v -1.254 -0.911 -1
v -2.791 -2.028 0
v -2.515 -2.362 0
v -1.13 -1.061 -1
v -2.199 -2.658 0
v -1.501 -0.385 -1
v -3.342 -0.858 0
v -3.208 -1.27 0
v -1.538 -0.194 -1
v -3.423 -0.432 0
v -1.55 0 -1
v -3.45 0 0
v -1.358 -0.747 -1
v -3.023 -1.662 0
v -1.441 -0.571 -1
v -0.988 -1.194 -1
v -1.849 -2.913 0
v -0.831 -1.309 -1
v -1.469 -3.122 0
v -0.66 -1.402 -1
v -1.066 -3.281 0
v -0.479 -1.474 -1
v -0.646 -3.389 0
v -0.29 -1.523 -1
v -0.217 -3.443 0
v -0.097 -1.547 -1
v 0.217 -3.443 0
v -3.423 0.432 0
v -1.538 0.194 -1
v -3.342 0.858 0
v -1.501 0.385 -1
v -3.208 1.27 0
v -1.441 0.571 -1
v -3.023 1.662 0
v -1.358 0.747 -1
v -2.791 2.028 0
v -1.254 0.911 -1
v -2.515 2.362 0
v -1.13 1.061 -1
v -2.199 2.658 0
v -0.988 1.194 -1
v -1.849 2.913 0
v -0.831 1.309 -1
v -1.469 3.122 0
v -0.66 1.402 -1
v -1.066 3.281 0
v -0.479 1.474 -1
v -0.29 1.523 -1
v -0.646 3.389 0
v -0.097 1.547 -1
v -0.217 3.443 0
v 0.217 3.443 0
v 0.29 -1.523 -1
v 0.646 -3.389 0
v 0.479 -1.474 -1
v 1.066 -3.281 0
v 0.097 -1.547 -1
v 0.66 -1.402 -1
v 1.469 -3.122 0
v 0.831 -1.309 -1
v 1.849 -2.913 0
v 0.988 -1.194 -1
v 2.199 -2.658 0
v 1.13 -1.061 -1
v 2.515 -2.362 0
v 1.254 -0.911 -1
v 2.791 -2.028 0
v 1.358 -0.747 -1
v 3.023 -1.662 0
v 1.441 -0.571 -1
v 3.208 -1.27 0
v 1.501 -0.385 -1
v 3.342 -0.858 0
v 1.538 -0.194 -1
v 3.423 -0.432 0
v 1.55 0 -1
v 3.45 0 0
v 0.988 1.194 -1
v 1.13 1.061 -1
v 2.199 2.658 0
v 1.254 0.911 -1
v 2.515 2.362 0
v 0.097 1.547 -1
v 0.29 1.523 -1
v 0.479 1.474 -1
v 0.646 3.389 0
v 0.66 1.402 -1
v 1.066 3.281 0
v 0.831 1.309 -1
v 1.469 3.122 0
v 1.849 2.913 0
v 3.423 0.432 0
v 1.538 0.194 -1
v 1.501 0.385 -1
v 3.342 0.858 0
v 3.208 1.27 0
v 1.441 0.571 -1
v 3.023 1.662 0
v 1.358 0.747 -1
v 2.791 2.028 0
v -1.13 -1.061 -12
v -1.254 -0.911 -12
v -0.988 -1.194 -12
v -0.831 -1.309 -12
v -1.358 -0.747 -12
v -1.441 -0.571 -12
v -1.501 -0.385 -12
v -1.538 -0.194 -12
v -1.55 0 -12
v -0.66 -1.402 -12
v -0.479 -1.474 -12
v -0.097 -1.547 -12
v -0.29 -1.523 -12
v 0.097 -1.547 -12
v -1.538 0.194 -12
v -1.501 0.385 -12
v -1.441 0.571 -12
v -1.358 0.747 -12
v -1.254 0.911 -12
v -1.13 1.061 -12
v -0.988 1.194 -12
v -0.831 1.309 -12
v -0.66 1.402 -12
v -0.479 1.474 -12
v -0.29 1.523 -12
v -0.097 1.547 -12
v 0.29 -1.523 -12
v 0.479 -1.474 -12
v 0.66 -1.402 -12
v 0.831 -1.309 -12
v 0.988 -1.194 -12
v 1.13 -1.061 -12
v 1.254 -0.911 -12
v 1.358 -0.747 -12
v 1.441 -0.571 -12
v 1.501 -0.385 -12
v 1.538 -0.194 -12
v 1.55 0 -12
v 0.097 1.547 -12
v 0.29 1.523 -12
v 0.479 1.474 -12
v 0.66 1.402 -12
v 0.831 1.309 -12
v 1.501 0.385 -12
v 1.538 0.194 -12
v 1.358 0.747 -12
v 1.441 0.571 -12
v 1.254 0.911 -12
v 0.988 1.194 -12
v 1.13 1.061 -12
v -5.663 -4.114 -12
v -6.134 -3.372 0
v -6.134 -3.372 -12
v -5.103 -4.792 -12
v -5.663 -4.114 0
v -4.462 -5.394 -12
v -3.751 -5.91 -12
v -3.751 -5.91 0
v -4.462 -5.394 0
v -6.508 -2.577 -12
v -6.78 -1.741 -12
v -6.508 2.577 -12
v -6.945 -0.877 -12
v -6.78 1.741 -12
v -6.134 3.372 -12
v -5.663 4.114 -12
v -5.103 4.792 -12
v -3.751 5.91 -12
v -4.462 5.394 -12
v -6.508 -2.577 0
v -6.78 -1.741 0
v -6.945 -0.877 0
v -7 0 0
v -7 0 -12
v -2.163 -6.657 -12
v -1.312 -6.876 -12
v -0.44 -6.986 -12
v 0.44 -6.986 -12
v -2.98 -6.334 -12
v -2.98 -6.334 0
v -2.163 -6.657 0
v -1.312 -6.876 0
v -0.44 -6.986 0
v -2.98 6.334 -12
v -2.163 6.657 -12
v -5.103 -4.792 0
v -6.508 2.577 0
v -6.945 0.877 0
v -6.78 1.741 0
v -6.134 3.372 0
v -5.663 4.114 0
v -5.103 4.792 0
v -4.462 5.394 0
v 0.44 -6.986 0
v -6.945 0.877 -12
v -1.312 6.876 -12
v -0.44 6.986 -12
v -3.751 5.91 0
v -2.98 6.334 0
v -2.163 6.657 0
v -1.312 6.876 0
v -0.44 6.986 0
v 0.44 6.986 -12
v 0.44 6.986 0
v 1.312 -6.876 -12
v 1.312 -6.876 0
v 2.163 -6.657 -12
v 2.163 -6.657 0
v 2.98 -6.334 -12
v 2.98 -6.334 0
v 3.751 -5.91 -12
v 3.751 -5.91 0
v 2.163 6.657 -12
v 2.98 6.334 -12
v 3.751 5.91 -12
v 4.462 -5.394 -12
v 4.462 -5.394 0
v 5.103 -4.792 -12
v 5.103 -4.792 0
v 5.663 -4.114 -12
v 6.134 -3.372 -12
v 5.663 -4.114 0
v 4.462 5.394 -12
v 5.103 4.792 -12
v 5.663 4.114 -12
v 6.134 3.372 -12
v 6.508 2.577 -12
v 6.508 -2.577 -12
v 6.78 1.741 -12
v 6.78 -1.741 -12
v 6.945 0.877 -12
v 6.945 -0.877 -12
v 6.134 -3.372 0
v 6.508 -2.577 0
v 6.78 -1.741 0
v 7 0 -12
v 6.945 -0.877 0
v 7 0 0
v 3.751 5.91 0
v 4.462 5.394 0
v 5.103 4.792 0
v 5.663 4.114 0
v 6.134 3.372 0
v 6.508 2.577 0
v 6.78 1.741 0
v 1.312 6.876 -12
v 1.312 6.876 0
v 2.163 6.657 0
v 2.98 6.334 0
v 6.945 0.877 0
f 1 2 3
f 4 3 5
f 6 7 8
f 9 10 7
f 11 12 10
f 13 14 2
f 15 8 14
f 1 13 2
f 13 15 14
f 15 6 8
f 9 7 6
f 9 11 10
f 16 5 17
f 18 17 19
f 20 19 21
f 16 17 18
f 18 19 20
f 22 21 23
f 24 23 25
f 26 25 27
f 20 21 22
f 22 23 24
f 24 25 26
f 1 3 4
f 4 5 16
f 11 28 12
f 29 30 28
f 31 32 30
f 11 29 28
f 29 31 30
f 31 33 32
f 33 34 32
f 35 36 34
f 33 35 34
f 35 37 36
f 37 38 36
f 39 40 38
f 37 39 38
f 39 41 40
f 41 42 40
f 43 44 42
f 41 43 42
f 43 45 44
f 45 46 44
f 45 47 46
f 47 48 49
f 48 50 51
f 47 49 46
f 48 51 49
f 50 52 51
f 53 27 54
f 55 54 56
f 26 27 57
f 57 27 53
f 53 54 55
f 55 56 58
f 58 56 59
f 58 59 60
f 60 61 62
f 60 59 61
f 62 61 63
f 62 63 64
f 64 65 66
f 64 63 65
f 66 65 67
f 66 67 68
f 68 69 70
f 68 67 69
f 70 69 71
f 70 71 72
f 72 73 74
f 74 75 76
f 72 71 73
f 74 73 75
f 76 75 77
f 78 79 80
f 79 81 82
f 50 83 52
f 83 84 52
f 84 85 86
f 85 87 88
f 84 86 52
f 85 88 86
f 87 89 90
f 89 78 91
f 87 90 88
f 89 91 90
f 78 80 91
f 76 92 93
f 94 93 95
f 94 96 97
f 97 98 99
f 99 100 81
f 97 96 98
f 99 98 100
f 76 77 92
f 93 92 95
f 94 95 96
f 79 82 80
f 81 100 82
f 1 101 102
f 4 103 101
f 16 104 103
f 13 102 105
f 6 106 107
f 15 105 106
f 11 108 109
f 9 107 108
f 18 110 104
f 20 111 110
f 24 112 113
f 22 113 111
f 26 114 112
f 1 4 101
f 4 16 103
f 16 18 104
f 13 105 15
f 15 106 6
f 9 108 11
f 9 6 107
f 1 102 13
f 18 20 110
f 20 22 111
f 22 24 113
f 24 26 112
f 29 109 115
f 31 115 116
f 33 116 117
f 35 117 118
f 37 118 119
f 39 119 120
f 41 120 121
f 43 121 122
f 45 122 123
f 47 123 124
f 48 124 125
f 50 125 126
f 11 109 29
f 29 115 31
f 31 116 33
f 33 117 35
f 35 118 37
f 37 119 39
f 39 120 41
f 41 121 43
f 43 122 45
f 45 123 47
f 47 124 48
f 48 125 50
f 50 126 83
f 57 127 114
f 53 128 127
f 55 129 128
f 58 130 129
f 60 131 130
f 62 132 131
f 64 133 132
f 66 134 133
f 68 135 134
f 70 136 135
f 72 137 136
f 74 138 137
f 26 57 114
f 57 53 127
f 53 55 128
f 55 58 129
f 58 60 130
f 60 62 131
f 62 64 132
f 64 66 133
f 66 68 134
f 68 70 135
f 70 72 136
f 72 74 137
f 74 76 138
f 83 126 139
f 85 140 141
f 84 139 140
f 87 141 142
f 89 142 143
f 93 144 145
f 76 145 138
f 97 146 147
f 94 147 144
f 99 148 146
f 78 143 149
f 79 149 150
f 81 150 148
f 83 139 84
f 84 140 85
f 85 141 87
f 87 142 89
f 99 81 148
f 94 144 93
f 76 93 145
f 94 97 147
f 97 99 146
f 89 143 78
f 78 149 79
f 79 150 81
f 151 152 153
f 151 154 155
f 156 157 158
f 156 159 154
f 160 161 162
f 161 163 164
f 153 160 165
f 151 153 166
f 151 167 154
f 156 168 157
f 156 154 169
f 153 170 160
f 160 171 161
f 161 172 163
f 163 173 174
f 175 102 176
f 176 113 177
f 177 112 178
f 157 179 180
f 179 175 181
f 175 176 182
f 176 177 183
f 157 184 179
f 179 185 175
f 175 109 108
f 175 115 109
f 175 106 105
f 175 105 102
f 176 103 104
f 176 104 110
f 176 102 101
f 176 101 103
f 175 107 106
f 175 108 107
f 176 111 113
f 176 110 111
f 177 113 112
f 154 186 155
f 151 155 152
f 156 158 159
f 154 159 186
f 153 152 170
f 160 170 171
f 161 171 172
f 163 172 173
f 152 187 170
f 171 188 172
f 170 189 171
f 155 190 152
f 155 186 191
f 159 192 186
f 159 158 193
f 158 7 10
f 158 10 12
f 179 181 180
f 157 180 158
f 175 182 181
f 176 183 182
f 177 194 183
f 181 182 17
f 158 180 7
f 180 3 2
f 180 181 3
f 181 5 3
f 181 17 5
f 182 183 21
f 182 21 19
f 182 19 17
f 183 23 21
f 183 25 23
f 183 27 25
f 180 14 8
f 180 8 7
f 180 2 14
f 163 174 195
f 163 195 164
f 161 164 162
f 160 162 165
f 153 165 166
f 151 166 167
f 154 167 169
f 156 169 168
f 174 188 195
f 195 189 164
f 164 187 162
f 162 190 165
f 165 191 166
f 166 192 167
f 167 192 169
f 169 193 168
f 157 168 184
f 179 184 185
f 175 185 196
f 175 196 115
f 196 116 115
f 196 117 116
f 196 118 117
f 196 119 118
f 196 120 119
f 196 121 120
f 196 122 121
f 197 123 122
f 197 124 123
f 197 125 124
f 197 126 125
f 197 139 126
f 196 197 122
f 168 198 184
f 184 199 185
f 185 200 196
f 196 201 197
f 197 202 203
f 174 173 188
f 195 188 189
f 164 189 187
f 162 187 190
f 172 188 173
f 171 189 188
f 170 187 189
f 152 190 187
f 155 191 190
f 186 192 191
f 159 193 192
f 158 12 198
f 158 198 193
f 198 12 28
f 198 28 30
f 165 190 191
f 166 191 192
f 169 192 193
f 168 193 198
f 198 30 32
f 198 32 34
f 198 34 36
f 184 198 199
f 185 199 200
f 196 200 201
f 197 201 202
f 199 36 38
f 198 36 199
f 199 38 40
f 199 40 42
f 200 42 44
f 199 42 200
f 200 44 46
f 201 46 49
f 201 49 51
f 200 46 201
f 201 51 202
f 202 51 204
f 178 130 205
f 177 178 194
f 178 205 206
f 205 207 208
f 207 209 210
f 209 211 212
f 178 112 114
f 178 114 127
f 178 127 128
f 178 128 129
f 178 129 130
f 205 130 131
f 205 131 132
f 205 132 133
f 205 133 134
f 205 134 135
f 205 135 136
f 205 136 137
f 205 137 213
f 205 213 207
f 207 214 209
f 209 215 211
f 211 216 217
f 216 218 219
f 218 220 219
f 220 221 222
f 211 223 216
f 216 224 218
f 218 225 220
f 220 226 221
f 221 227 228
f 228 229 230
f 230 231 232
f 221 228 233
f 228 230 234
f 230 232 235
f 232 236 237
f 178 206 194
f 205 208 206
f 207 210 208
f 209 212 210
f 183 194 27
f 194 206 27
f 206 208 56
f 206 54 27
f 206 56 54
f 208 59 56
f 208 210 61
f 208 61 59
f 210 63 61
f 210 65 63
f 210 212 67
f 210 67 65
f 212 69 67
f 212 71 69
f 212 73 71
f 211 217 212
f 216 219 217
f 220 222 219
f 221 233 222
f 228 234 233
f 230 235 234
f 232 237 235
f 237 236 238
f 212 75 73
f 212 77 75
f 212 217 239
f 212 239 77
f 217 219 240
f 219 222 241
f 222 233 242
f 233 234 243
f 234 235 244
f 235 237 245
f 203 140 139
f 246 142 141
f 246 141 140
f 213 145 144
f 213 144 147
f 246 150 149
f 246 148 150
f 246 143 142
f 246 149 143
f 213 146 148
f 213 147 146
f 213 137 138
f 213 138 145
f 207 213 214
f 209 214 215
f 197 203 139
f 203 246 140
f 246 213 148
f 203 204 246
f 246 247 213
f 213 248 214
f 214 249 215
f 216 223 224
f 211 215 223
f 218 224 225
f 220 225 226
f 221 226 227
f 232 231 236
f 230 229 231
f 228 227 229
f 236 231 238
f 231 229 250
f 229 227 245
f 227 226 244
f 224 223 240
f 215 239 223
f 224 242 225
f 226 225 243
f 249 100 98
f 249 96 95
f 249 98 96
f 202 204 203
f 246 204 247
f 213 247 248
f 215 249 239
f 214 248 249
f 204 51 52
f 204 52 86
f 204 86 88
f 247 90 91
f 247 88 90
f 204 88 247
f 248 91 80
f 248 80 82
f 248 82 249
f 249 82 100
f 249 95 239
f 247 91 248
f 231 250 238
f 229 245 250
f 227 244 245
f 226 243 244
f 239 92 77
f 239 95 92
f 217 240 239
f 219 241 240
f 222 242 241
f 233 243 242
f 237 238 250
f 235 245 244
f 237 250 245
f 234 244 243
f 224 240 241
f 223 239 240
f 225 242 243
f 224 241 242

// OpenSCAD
$fn = 50;

difference() {
	union() {
		translate(v = [0, 0, -12.0]) {
			cylinder(h = 12, r = 7.0);
		}
	}
	union() {
		translate(v = [0, 0, 0]) {
			rotate(a = [0, 0, 0]) {
				difference() {
					union() {
						translate(v = [0, 0, -15.0]) {
							cylinder(h = 15, r = 1.25);
						}
						translate(v = [0, 0, -1.0]) {
							cylinder(h = 1.0, r1 = 1.55, r2 = 3.45);
						}
						translate(v = [0, 0, -15.0]) {
							cylinder(h = 15, r = 1.55);
						}
						translate(v = [0, 0, -15.0]) {
							cylinder(h = 15, r = 1.25);
						}
					}
					union();
				}
			}
		}
	}
}
